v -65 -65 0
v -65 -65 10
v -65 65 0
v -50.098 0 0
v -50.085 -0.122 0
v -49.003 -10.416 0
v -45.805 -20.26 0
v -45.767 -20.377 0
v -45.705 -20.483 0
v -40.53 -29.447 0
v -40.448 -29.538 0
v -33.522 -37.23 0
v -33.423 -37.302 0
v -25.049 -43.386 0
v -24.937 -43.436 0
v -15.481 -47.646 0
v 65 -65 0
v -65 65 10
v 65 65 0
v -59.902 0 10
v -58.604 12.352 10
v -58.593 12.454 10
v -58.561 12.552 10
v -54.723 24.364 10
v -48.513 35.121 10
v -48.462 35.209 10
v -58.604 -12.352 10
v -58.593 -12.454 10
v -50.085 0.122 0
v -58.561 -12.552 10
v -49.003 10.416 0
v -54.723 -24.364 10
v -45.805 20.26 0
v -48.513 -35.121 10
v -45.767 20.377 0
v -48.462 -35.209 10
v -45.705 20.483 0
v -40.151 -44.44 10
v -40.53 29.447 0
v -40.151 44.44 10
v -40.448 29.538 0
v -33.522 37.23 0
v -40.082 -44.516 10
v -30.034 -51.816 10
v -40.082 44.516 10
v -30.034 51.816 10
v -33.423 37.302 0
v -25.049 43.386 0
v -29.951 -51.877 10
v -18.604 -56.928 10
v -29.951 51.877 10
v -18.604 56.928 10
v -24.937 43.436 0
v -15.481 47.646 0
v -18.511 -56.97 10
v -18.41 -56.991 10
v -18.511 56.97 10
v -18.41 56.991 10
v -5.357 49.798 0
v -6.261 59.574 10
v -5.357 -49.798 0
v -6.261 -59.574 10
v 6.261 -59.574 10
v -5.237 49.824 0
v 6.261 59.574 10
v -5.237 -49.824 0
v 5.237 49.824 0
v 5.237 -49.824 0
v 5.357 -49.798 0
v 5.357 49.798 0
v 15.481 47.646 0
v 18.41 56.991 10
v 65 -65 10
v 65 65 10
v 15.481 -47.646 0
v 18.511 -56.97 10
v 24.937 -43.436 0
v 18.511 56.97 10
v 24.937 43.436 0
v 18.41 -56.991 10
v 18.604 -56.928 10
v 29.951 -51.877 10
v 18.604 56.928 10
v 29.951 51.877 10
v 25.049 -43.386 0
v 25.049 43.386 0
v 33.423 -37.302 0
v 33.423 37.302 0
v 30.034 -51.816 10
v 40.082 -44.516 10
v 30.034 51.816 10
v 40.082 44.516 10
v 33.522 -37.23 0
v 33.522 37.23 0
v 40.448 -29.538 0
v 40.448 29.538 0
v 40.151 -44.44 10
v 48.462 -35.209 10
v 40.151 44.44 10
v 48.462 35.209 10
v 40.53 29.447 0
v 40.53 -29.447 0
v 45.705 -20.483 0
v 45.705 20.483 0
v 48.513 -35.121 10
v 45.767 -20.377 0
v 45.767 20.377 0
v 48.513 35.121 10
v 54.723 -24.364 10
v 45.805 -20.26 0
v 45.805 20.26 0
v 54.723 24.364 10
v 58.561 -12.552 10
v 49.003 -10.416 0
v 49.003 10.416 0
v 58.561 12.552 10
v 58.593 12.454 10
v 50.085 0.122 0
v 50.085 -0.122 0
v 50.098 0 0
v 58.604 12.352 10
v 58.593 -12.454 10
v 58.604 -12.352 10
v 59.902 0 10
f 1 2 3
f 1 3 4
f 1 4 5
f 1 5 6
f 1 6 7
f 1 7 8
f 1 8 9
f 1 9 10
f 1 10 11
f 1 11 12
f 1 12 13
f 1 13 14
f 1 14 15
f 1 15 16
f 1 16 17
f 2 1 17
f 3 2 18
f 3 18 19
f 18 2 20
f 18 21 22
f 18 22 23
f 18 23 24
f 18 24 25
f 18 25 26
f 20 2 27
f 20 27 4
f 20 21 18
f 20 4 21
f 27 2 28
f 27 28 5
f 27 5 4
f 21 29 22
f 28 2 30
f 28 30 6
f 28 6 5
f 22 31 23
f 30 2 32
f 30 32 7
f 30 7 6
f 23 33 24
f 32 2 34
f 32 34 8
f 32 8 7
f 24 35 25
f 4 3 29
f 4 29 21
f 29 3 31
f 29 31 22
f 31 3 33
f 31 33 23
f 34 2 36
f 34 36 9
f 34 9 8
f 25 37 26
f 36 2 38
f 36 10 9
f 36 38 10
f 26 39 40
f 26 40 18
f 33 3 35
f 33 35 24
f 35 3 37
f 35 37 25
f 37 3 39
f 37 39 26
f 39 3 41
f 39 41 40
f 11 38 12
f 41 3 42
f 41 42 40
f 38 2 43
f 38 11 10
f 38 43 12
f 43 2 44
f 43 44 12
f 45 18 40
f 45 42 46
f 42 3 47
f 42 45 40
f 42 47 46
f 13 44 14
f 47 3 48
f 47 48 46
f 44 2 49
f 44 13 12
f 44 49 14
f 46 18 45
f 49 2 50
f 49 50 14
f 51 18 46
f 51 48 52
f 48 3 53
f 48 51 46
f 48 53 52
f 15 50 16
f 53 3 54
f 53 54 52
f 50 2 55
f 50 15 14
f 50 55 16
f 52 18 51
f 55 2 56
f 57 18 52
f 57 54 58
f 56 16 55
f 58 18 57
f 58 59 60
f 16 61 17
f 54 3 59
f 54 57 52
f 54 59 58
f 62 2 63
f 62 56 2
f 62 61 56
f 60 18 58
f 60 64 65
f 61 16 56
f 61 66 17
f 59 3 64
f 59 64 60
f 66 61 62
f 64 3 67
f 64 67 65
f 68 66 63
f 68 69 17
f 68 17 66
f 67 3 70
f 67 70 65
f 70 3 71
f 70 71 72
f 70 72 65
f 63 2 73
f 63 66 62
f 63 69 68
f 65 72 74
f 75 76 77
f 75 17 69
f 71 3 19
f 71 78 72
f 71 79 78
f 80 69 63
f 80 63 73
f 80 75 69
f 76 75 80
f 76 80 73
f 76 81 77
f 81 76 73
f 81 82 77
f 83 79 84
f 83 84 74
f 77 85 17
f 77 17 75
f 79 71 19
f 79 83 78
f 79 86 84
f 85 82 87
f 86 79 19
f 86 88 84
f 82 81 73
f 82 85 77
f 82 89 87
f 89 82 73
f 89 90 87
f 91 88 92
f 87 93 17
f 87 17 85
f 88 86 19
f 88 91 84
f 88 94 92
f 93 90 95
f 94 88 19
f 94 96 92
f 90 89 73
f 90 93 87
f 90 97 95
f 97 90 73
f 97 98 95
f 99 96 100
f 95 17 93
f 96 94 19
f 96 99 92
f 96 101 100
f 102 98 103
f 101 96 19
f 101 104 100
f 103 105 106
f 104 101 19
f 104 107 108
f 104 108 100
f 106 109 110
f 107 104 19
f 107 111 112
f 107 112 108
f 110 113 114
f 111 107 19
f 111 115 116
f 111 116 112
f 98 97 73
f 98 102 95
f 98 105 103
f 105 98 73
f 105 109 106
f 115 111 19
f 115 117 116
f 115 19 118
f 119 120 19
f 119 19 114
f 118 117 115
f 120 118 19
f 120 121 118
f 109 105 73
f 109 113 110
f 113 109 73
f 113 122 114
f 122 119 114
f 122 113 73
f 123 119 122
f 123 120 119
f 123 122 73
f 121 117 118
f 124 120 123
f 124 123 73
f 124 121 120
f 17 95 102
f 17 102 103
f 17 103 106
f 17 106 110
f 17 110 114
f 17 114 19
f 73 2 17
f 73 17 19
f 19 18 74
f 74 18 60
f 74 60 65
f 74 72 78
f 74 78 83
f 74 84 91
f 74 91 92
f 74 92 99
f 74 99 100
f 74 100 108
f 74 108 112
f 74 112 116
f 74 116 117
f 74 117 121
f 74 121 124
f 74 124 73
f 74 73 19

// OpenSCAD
 // CSG.scad - Basic example of CSG usage


translate([0,0,1]) {
     thing();
}

module base() {
      translate([0,0,4]) {
            cube([130,130,10],center=true);
        }
}

module thing() {
     difference(){
        base();
         translate([0,0,-1.1]) {
            cylinder(h=10.2, r1=50, r2=60);
         }
    }
}
